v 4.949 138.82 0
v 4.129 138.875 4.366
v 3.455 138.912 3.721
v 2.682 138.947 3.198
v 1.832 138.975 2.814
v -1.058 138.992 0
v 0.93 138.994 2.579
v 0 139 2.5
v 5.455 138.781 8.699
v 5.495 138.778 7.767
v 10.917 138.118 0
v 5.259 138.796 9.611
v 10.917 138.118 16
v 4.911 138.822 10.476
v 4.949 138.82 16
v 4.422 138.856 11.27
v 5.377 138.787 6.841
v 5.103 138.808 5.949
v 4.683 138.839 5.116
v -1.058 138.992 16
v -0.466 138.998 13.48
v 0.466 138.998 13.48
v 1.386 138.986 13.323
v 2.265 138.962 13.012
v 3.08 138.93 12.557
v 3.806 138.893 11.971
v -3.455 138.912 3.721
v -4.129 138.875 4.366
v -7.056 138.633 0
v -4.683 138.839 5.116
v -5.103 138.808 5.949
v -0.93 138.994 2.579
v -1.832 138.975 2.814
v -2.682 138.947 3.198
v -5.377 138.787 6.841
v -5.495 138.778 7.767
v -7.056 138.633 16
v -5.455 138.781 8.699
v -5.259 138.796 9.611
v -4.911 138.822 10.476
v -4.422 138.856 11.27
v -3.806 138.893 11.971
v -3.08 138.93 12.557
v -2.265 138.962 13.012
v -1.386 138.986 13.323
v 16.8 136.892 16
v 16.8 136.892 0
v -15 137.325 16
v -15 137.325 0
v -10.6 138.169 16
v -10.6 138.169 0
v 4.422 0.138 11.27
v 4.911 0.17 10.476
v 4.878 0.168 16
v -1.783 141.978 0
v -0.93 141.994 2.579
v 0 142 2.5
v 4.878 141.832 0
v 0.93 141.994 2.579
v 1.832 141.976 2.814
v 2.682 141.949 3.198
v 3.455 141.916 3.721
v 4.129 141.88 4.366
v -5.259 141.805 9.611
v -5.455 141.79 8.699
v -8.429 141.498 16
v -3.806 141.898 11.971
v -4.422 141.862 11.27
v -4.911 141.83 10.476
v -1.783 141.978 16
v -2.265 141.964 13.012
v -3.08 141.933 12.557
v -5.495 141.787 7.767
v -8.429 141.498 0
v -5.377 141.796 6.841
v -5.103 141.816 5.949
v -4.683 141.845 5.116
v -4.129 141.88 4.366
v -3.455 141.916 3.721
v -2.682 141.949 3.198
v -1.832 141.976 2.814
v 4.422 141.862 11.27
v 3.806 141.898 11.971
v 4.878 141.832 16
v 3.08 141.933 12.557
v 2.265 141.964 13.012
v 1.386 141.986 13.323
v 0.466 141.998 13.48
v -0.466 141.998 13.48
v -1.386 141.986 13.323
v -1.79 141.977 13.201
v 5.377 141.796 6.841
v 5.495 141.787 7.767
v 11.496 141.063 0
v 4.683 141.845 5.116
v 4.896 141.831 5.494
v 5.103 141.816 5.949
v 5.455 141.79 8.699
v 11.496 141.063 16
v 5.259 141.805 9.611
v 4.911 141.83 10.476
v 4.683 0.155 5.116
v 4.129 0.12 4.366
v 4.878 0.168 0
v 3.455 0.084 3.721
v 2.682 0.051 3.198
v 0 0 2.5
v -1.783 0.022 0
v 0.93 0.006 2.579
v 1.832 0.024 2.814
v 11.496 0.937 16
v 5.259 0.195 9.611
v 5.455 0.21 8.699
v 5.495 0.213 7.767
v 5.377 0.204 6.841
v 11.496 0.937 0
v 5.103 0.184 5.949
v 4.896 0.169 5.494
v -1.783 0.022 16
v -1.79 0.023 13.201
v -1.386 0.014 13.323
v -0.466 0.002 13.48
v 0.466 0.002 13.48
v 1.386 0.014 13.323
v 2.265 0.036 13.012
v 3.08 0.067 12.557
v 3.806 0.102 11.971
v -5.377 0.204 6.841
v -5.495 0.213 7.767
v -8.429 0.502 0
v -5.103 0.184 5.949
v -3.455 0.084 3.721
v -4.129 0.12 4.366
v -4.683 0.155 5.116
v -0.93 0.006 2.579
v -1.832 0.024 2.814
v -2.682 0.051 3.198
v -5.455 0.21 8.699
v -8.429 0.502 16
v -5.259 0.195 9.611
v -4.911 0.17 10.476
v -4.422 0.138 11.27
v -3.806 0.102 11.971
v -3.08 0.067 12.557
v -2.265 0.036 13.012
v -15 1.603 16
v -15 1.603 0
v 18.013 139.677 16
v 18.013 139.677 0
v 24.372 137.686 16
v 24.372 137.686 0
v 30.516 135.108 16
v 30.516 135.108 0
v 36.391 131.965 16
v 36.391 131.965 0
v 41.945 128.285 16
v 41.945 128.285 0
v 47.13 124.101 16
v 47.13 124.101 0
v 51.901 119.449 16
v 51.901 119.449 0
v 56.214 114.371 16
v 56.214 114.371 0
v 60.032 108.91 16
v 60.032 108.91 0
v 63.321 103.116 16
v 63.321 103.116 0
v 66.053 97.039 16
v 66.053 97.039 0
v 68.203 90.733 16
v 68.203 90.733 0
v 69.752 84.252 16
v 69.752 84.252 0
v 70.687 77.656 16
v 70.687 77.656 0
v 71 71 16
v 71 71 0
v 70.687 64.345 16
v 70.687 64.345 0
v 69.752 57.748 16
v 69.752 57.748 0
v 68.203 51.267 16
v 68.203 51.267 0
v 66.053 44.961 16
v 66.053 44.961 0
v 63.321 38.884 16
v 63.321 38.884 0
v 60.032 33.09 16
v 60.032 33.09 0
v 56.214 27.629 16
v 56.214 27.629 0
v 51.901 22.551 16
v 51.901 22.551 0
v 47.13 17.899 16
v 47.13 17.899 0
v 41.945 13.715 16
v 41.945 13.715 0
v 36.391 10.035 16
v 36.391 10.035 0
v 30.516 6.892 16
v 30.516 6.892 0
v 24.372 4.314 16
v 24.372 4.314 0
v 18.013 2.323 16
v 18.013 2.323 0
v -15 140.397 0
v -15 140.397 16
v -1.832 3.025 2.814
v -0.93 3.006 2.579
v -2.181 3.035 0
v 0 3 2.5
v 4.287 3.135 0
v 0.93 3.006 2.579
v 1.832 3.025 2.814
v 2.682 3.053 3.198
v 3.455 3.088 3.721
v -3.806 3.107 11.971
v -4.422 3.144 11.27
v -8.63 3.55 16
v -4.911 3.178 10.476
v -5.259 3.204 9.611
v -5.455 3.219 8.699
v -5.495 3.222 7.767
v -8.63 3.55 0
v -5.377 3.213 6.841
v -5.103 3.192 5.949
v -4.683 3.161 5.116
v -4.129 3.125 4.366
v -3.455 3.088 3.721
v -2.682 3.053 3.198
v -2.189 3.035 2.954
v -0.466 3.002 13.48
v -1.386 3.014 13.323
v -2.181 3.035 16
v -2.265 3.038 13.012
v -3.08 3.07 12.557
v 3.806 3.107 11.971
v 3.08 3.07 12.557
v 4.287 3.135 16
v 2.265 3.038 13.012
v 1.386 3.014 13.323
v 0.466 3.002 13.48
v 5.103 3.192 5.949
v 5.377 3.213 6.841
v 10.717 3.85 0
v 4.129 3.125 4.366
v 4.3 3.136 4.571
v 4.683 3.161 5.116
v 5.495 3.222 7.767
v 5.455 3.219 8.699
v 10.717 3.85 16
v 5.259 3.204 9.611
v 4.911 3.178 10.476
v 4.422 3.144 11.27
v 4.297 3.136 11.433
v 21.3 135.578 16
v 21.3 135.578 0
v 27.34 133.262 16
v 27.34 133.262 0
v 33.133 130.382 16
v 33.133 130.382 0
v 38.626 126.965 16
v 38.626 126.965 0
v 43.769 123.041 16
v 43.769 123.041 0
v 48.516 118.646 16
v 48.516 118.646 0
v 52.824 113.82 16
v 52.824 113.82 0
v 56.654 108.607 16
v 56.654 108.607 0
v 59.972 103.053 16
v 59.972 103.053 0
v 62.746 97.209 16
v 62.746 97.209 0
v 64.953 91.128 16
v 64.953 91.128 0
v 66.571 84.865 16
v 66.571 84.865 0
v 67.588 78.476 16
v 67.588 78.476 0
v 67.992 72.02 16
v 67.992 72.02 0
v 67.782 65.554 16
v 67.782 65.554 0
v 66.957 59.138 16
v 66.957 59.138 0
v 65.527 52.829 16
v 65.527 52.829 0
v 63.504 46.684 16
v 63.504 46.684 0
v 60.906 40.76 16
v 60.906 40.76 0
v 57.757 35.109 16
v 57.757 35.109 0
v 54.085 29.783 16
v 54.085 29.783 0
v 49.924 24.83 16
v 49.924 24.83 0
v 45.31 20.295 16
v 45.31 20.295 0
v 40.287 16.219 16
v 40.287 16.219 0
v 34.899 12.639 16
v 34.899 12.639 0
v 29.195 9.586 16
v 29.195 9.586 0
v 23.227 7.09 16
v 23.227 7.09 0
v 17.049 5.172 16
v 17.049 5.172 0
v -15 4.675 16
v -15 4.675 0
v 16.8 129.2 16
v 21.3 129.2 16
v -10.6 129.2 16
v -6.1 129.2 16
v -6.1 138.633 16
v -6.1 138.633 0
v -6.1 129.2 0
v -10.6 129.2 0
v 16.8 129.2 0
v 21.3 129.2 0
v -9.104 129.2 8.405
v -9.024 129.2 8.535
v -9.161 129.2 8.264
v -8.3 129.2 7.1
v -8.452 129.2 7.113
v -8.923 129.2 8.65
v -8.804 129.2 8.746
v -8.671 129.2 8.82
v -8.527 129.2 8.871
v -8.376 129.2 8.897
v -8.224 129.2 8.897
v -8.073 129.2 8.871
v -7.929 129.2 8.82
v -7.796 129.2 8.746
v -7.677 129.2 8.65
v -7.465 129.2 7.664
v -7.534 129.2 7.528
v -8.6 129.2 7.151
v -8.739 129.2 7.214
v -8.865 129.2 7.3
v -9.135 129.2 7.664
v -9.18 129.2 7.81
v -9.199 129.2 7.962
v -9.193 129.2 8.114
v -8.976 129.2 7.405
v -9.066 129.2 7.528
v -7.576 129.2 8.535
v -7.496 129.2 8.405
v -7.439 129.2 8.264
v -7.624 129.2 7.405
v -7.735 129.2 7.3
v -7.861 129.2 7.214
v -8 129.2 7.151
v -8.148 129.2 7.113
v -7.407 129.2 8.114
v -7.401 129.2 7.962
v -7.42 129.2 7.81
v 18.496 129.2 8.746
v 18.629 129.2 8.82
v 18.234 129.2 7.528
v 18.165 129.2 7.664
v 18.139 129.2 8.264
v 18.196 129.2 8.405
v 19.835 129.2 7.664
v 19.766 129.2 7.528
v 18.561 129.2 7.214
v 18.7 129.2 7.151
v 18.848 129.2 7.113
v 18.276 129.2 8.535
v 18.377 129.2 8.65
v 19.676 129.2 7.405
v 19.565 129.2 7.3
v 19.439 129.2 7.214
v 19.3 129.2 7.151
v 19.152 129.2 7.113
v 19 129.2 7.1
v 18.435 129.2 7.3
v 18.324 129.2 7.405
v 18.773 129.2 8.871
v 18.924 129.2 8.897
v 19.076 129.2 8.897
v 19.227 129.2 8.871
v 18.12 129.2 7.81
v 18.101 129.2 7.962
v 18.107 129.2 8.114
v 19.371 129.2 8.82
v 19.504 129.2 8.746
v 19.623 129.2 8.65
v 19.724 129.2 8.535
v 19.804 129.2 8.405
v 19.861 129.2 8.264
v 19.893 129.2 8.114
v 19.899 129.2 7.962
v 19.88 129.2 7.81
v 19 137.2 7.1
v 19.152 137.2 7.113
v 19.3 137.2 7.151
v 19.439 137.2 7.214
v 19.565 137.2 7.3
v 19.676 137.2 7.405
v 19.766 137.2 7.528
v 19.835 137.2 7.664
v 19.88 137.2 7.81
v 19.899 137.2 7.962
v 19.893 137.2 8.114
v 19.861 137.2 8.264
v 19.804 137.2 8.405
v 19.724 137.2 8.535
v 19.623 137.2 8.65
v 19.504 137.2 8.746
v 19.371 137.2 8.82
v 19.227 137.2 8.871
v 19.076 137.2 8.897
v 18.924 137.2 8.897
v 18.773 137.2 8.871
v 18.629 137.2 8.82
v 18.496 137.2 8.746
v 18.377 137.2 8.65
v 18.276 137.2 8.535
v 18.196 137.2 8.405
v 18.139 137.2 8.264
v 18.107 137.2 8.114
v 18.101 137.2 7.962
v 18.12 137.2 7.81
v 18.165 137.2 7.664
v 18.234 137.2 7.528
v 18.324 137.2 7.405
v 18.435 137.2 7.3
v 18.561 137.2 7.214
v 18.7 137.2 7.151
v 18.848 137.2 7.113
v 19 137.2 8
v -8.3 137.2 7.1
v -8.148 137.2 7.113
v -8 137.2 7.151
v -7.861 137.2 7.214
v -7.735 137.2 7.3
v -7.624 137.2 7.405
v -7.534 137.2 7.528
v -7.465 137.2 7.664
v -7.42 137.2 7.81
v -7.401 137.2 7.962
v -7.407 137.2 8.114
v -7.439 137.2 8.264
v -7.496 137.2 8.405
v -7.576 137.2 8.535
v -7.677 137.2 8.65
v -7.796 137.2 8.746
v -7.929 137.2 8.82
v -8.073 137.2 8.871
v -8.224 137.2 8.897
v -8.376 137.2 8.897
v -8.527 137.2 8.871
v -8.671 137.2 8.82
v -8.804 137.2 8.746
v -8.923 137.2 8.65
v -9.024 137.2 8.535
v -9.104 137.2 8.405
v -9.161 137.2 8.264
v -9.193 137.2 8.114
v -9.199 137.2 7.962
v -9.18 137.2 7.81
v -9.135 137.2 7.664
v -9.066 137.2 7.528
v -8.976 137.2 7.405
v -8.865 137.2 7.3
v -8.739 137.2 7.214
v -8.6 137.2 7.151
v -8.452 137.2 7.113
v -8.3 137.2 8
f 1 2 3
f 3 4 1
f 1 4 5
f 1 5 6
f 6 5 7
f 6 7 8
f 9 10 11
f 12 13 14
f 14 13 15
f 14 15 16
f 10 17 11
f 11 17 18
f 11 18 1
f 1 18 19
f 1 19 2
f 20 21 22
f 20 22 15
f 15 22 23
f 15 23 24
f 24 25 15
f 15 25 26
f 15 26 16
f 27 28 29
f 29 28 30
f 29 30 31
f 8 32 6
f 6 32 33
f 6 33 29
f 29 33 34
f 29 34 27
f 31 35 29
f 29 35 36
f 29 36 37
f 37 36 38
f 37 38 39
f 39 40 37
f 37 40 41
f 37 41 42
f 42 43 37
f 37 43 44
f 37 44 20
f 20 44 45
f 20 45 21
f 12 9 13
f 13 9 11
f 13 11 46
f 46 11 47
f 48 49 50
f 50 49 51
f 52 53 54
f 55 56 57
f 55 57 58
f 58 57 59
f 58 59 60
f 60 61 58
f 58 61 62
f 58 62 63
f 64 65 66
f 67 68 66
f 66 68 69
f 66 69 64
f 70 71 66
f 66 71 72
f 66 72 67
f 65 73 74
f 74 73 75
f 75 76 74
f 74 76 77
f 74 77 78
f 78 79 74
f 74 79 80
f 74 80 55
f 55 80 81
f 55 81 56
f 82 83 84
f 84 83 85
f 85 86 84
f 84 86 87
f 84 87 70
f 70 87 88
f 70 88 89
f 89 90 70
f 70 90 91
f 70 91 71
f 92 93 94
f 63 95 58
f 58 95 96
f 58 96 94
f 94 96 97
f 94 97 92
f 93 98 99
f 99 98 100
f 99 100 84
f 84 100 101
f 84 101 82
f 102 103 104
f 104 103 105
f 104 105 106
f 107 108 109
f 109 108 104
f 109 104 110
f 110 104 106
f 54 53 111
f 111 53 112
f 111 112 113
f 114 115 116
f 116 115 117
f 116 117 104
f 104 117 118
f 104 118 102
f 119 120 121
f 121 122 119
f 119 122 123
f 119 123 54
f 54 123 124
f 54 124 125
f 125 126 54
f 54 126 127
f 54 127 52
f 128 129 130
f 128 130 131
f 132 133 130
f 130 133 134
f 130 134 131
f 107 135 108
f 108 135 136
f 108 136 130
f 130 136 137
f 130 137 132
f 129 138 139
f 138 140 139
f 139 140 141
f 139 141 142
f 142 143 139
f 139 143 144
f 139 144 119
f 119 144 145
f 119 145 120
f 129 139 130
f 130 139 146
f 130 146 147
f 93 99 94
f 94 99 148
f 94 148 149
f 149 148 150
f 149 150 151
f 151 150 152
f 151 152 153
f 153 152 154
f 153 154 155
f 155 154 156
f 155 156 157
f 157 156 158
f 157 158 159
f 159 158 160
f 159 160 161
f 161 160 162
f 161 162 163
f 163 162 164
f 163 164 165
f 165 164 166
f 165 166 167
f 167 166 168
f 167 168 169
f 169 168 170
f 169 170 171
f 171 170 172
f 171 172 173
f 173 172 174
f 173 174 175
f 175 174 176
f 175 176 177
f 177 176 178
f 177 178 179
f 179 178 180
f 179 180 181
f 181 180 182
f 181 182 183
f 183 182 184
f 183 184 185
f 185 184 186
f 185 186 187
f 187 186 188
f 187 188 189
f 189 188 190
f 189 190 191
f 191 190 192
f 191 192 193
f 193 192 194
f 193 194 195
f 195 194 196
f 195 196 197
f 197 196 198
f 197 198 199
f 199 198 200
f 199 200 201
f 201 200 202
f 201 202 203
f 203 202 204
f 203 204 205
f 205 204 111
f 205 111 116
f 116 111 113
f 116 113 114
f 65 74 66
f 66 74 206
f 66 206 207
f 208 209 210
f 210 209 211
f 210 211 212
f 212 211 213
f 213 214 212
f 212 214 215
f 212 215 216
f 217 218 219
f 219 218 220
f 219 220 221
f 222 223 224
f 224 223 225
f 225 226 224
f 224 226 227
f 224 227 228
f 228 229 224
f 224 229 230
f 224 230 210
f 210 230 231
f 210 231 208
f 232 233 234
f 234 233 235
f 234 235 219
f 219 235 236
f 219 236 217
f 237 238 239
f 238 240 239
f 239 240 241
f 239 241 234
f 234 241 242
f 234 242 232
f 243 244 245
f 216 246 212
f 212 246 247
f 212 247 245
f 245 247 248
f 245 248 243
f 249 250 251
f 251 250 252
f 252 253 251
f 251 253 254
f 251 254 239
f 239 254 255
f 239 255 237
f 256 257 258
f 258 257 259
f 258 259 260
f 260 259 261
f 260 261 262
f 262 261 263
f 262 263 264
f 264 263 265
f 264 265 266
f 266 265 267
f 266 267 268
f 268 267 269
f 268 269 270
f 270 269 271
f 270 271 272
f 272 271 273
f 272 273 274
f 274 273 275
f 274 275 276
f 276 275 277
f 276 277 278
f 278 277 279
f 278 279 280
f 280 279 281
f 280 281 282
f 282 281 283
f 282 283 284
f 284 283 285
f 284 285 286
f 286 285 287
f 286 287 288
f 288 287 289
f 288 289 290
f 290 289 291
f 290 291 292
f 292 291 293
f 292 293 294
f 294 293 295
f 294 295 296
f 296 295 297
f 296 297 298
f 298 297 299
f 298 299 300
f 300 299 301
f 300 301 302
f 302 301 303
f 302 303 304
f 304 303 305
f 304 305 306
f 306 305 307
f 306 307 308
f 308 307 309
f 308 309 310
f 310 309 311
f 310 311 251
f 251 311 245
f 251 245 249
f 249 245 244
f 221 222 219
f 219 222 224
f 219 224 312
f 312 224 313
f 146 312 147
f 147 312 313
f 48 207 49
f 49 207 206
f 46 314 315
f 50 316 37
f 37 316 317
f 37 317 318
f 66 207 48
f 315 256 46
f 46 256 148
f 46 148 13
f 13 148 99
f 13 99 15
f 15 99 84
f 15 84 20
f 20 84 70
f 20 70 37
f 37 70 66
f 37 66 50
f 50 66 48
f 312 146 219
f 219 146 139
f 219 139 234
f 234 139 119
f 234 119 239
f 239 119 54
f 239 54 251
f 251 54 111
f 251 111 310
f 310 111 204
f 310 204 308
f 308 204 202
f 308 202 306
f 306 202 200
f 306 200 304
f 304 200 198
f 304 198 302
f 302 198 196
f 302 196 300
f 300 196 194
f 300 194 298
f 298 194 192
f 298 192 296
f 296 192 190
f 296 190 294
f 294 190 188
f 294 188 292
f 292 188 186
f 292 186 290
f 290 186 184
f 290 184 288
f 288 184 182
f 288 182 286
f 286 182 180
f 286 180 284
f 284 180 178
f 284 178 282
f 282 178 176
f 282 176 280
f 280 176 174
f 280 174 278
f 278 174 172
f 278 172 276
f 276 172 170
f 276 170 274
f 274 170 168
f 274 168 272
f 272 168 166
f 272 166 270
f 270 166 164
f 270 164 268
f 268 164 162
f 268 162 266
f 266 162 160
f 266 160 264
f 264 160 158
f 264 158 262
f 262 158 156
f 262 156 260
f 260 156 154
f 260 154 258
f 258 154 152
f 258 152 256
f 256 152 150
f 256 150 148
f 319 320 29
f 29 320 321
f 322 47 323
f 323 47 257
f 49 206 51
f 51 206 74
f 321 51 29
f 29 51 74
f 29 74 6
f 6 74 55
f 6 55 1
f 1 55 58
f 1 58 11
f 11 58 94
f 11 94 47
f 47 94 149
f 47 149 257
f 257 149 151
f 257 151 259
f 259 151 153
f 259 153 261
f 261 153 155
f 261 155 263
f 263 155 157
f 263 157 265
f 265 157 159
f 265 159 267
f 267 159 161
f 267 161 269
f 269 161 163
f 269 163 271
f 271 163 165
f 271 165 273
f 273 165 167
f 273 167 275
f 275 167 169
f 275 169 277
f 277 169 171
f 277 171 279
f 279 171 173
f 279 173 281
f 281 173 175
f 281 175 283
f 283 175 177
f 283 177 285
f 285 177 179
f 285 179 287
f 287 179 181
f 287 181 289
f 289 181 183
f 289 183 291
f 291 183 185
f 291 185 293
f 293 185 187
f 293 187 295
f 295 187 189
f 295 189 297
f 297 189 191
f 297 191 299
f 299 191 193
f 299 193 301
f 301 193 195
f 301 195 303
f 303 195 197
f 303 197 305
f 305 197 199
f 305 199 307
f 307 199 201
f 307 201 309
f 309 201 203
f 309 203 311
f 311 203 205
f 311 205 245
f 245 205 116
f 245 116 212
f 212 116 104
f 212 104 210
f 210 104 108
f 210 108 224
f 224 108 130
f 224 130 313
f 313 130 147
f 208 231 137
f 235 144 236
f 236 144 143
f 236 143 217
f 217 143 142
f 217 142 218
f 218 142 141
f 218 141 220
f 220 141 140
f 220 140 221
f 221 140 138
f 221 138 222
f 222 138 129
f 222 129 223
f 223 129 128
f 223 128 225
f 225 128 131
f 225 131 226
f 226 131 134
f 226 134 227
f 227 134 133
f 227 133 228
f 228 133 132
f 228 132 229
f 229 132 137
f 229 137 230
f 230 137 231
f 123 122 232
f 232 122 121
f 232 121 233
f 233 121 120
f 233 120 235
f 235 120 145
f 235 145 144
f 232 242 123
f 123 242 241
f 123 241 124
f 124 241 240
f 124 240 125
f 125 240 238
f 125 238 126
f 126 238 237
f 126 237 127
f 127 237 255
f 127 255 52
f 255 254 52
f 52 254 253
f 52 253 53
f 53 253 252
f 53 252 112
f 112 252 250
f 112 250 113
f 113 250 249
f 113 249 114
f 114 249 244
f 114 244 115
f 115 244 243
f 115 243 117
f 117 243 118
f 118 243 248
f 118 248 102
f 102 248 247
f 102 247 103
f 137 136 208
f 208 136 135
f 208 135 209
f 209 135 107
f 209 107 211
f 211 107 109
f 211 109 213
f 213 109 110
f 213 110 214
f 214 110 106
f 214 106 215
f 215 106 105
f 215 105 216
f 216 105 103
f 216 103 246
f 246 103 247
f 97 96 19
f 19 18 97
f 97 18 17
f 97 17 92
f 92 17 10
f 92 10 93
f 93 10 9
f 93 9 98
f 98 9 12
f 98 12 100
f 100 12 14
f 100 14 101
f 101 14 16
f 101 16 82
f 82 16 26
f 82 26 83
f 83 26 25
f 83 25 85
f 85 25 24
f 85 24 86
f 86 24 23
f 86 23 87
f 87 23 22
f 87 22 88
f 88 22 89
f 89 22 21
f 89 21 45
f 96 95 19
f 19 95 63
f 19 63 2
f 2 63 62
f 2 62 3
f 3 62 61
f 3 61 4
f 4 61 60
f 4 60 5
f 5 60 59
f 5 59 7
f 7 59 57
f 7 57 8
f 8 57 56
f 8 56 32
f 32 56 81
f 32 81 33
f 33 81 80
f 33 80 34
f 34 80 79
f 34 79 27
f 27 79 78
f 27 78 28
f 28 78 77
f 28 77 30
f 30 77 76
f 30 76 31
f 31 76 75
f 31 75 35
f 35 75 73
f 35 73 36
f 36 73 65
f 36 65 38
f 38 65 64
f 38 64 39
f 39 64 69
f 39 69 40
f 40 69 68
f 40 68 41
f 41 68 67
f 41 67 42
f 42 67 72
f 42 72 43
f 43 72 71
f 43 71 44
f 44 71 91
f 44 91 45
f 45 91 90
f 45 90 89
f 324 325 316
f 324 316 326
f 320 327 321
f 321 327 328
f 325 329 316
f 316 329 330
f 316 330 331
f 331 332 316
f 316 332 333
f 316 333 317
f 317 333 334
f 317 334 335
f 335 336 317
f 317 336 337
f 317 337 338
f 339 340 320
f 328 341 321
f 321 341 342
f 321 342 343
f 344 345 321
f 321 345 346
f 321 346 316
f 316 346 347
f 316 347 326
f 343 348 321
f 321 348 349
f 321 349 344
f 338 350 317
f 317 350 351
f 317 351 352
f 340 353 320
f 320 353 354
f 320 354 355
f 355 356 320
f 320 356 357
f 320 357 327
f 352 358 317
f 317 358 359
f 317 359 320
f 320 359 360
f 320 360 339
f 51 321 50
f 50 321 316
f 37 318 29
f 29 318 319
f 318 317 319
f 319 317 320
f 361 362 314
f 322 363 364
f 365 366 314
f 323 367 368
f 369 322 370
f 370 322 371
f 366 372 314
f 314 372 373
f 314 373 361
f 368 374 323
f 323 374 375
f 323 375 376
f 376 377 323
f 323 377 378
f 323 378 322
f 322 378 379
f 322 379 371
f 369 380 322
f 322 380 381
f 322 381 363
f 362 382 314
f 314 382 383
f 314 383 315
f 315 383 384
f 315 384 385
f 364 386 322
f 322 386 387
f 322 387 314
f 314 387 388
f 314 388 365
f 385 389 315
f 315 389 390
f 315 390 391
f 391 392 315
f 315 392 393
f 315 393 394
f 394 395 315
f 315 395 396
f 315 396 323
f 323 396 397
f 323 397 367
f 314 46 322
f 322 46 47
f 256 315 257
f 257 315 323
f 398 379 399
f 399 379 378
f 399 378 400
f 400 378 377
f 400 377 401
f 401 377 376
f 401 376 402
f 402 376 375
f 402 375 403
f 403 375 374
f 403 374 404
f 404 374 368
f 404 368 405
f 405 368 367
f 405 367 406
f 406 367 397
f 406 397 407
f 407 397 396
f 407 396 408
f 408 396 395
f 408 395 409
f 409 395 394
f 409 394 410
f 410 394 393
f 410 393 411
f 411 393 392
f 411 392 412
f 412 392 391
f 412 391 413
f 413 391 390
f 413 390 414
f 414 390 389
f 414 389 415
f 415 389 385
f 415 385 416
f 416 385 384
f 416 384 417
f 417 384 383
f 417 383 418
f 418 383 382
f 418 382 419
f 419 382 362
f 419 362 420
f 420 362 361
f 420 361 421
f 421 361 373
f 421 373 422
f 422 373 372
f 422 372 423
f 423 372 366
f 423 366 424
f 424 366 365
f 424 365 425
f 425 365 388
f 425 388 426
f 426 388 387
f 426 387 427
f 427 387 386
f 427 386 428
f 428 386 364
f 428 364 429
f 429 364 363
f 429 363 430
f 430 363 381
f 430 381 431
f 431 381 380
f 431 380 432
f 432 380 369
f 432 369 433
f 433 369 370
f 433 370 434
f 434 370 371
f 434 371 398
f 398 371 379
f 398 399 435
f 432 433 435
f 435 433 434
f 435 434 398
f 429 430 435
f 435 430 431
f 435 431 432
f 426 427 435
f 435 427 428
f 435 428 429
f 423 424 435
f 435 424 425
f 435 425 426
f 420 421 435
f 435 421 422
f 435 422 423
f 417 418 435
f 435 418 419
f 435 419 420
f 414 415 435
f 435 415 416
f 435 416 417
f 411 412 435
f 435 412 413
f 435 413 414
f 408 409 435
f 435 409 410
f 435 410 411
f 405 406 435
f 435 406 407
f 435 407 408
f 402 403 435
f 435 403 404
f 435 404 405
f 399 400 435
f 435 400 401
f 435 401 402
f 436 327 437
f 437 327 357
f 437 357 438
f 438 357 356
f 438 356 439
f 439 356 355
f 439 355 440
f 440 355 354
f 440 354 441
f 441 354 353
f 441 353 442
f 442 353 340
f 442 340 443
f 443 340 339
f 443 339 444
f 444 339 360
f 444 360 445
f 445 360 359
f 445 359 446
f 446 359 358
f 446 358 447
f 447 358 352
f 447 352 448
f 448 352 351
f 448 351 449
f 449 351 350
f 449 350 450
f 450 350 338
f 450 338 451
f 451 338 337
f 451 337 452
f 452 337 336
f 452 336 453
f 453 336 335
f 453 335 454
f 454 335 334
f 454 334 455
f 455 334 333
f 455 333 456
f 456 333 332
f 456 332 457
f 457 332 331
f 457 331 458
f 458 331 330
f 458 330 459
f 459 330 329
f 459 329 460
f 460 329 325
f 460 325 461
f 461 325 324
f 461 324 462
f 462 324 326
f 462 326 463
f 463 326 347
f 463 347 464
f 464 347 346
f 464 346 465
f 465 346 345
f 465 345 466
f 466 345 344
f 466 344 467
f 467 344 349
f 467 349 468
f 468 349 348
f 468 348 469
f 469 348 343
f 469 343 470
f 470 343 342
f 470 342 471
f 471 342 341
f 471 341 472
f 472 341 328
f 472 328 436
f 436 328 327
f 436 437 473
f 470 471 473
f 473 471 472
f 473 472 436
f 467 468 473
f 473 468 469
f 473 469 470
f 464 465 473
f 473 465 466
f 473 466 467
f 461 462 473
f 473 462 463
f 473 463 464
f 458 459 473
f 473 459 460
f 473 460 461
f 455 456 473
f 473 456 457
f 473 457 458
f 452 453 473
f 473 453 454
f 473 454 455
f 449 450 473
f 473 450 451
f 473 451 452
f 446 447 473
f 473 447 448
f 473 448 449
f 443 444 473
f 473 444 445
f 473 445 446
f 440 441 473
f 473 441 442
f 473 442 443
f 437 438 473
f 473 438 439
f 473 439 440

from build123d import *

# Parameters (mm, degrees)
BOSS_EXTRUDE1_DEPTH = 16
SKETCH2_R           = 5.5
CUT_EXTRUDE1_DEPTH  = 143
SKETCH3_W           = 4.5
SKETCH3_H           = 9.432893418
SKETCH3_H_2         = 7.692032902
BOSS_EXTRUDE2_DEPTH = 16
SKETCH4_R           = 0.9
CUT_EXTRUDE2_DEPTH  = 8


with BuildPart() as part:
    # Sketch1 → Boss-Extrude1 (new body)
    with BuildSketch(Plane.XY):
        with BuildLine():
            Line((-15, 140.397406292), (-15, 137.324957595))
            ThreePointArc((-15, 137.324957595), (68, 71), (-15, 4.675042405))
            Line((-15, 4.675042405), (-15, 1.602593708))
            ThreePointArc((-15, 1.602593708), (71, 71), (-15, 140.397406292))
        make_face()
    extrude(amount=BOSS_EXTRUDE1_DEPTH)

    # Sketch2 → Cut-Extrude1 (cut, through all)
    with BuildSketch(Plane(origin=(0, 0, 0), x_dir=(1, 0, 0), z_dir=(0, 1, 0))):
        with Locations((0, -8)):
            Circle(SKETCH2_R)
    extrude(amount=CUT_EXTRUDE1_DEPTH, mode=Mode.SUBTRACT)

    # Sketch3 → Boss-Extrude2 (add)
    with BuildSketch(Plane.XY.offset(16)):
        with Locations((-8.35, 133.916446709)):
            Rectangle(SKETCH3_W, SKETCH3_H)
        with Locations((19.05, 133.046016451)):
            Rectangle(SKETCH3_W, SKETCH3_H_2)
    extrude(amount=-BOSS_EXTRUDE2_DEPTH)

    # Sketch4 → Cut-Extrude2 (cut)
    with BuildSketch(Plane.XZ.offset(-129.2)):
        with Locations((19, 8)):
            Circle(SKETCH4_R)
        with Locations((-8.3, 8)):
            Circle(SKETCH4_R)
    extrude(amount=-CUT_EXTRUDE2_DEPTH, mode=Mode.SUBTRACT)


solid = part.part
